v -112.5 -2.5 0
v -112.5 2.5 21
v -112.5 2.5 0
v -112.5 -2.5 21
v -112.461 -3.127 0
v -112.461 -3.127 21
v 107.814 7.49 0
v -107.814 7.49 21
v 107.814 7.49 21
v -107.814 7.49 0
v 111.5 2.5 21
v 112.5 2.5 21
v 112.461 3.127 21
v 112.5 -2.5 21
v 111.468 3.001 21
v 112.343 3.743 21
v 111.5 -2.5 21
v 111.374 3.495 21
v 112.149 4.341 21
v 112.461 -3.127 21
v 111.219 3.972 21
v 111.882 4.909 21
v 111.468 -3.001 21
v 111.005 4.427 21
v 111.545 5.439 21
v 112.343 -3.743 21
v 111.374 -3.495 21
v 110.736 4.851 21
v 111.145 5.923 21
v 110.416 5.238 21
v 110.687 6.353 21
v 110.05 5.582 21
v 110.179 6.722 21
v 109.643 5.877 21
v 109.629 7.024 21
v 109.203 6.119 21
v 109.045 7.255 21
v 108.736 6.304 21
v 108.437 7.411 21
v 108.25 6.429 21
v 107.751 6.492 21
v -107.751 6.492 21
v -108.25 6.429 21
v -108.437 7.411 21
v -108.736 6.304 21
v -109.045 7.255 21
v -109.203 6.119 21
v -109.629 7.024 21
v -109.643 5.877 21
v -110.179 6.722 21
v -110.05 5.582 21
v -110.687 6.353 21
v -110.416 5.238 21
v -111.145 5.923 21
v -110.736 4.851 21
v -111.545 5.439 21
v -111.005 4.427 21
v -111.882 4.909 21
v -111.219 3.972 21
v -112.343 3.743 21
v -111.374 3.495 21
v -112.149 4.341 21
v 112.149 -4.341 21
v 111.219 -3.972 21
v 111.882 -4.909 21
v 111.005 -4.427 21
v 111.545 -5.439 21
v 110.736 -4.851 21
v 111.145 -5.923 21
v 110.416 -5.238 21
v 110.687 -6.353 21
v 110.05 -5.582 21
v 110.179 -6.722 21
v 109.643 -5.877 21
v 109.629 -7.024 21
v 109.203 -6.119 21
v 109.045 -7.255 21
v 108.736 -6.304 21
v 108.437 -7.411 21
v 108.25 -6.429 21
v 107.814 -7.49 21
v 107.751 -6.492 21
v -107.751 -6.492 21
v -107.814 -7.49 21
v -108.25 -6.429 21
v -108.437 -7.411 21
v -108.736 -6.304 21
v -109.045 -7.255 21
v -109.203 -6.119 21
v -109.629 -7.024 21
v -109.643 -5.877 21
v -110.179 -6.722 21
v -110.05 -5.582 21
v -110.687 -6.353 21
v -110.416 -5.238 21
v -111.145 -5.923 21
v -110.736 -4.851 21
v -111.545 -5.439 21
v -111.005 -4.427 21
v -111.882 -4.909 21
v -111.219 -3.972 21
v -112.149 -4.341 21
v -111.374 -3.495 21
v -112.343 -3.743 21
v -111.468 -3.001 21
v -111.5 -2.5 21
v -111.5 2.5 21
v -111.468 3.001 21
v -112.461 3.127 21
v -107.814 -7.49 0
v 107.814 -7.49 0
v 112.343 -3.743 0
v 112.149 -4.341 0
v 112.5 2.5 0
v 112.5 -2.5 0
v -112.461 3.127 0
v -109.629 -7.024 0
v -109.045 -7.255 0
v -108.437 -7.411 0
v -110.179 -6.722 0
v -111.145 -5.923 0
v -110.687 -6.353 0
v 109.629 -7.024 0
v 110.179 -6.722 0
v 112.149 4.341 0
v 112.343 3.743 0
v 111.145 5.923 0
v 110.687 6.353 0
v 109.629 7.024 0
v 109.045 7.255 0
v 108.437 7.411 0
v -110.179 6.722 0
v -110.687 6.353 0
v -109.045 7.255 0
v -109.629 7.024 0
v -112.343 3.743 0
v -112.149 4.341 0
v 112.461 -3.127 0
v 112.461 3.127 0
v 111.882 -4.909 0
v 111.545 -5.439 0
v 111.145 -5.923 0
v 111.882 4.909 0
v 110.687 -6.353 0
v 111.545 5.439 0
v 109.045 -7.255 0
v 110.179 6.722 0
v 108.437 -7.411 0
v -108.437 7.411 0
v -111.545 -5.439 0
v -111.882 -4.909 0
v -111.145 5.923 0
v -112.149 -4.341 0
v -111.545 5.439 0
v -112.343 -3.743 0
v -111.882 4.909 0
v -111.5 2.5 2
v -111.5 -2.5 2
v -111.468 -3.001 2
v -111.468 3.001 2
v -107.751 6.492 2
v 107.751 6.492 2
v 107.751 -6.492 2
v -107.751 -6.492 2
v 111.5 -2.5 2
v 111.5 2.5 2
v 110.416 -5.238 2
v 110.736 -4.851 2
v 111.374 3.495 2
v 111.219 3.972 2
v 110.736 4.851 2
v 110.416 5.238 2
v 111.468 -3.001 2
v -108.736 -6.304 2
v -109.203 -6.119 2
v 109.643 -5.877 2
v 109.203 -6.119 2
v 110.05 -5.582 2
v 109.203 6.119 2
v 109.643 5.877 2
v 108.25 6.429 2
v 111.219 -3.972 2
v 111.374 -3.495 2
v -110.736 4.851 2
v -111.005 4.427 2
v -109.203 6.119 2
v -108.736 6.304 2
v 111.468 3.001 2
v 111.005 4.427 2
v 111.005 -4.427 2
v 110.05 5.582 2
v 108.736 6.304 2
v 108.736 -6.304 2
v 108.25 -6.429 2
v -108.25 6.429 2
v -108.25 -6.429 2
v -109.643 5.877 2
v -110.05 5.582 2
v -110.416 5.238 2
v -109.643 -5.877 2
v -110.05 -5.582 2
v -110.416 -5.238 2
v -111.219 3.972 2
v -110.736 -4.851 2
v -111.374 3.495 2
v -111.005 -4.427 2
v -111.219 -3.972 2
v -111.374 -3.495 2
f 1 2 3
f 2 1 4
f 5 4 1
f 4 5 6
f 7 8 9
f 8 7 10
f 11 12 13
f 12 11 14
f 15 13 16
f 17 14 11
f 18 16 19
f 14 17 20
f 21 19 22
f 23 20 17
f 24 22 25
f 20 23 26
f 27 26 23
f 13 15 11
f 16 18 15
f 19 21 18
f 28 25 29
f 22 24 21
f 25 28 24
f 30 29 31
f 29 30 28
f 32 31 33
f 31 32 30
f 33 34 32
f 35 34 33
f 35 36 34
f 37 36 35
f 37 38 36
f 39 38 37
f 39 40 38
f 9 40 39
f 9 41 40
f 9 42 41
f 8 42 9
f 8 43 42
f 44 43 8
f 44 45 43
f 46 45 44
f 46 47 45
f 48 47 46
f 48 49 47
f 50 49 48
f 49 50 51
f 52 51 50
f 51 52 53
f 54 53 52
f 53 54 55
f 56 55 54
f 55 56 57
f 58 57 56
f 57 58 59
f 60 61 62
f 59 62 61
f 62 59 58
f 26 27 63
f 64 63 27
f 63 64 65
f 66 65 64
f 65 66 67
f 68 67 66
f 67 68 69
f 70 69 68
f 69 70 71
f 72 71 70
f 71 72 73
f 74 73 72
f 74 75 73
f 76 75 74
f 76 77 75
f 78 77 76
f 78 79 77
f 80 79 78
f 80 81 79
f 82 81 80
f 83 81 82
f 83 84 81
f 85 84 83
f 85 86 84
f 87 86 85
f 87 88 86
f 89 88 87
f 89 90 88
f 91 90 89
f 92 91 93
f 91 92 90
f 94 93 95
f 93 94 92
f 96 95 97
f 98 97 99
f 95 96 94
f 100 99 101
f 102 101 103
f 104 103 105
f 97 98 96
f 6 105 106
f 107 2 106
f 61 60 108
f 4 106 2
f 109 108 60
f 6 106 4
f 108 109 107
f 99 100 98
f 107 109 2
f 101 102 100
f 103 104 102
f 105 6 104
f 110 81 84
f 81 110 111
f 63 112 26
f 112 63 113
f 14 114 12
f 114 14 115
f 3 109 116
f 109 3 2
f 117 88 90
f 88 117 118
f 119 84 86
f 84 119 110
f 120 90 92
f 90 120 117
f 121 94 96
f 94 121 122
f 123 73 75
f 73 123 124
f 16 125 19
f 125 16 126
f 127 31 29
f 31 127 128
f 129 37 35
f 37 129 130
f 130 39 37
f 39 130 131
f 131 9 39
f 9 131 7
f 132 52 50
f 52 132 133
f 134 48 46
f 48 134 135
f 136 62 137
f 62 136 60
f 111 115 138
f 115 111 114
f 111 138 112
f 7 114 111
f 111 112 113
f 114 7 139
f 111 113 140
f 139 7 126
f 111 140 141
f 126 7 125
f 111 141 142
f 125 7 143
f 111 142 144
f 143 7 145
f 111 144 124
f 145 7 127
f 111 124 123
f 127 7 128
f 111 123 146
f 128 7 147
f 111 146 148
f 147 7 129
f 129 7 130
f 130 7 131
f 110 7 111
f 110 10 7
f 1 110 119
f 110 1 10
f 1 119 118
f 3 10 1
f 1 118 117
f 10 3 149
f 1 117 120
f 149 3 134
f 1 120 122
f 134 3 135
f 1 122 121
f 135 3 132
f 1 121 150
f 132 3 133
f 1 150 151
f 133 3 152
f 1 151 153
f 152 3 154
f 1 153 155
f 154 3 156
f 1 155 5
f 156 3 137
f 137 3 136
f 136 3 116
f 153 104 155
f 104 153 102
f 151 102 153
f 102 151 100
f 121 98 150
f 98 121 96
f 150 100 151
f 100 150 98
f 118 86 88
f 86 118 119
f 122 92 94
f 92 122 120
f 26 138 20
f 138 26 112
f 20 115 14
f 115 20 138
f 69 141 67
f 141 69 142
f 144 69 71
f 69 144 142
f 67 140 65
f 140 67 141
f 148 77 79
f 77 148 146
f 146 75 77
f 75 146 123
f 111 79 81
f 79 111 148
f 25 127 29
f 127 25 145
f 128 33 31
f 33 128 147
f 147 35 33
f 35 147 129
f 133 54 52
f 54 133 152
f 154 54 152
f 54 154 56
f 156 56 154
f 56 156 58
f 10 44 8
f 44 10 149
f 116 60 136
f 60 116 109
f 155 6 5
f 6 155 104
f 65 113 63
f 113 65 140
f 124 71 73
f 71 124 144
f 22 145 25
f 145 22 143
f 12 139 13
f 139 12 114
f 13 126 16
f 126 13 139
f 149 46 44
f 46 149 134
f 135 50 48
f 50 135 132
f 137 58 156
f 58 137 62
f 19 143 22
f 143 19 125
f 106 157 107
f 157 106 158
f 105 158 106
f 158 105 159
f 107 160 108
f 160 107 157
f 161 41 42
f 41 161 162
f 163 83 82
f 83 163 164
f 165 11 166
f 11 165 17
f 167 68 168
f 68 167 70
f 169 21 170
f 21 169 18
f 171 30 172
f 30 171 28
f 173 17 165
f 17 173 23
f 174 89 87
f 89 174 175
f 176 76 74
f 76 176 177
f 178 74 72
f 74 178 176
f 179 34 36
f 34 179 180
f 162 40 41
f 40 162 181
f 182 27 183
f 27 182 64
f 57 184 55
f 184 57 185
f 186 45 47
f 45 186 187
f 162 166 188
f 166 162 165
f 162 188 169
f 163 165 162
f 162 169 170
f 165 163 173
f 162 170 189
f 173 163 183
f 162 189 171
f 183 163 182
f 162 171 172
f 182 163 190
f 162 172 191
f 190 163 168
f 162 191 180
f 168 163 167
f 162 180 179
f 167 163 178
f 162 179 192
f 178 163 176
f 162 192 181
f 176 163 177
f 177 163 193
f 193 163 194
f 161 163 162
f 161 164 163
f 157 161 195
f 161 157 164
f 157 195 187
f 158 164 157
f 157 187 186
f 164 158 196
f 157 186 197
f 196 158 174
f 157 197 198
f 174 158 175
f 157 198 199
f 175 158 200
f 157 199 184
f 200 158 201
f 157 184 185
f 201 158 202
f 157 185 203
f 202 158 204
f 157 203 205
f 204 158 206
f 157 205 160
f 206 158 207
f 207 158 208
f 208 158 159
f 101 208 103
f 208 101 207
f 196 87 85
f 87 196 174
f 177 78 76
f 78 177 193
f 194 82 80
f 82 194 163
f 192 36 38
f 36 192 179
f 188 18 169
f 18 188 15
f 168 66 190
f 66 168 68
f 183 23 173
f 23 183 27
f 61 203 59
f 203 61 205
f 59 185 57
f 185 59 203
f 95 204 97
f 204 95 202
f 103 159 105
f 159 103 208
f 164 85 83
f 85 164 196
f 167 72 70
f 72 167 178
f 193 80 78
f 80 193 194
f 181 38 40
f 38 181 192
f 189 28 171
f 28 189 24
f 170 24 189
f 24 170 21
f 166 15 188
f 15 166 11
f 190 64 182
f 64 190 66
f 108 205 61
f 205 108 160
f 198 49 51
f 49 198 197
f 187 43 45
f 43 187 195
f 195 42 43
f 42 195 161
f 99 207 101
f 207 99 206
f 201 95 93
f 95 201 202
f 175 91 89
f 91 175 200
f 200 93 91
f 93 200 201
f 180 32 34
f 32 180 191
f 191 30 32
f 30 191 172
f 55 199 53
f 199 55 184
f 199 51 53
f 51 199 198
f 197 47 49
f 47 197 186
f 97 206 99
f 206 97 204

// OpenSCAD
$fn = 50;


difference() {
	union() {
		hull() {
			translate(v = [-107.5000000000, 2.5000000000, 0]) {
				cylinder(h = 21, r = 5);
			}
			translate(v = [107.5000000000, 2.5000000000, 0]) {
				cylinder(h = 21, r = 5);
			}
			translate(v = [-107.5000000000, -2.5000000000, 0]) {
				cylinder(h = 21, r = 5);
			}
			translate(v = [107.5000000000, -2.5000000000, 0]) {
				cylinder(h = 21, r = 5);
			}
		}
	}
	union() {
		translate(v = [0, 0, 2]) {
			hull() {
				translate(v = [-107.5000000000, 2.5000000000, 0]) {
					cylinder(h = 19, r = 4);
				}
				translate(v = [107.5000000000, 2.5000000000, 0]) {
					cylinder(h = 19, r = 4);
				}
				translate(v = [-107.5000000000, -2.5000000000, 0]) {
					cylinder(h = 19, r = 4);
				}
				translate(v = [107.5000000000, -2.5000000000, 0]) {
					cylinder(h = 19, r = 4);
				}
			}
		}
	}
}
